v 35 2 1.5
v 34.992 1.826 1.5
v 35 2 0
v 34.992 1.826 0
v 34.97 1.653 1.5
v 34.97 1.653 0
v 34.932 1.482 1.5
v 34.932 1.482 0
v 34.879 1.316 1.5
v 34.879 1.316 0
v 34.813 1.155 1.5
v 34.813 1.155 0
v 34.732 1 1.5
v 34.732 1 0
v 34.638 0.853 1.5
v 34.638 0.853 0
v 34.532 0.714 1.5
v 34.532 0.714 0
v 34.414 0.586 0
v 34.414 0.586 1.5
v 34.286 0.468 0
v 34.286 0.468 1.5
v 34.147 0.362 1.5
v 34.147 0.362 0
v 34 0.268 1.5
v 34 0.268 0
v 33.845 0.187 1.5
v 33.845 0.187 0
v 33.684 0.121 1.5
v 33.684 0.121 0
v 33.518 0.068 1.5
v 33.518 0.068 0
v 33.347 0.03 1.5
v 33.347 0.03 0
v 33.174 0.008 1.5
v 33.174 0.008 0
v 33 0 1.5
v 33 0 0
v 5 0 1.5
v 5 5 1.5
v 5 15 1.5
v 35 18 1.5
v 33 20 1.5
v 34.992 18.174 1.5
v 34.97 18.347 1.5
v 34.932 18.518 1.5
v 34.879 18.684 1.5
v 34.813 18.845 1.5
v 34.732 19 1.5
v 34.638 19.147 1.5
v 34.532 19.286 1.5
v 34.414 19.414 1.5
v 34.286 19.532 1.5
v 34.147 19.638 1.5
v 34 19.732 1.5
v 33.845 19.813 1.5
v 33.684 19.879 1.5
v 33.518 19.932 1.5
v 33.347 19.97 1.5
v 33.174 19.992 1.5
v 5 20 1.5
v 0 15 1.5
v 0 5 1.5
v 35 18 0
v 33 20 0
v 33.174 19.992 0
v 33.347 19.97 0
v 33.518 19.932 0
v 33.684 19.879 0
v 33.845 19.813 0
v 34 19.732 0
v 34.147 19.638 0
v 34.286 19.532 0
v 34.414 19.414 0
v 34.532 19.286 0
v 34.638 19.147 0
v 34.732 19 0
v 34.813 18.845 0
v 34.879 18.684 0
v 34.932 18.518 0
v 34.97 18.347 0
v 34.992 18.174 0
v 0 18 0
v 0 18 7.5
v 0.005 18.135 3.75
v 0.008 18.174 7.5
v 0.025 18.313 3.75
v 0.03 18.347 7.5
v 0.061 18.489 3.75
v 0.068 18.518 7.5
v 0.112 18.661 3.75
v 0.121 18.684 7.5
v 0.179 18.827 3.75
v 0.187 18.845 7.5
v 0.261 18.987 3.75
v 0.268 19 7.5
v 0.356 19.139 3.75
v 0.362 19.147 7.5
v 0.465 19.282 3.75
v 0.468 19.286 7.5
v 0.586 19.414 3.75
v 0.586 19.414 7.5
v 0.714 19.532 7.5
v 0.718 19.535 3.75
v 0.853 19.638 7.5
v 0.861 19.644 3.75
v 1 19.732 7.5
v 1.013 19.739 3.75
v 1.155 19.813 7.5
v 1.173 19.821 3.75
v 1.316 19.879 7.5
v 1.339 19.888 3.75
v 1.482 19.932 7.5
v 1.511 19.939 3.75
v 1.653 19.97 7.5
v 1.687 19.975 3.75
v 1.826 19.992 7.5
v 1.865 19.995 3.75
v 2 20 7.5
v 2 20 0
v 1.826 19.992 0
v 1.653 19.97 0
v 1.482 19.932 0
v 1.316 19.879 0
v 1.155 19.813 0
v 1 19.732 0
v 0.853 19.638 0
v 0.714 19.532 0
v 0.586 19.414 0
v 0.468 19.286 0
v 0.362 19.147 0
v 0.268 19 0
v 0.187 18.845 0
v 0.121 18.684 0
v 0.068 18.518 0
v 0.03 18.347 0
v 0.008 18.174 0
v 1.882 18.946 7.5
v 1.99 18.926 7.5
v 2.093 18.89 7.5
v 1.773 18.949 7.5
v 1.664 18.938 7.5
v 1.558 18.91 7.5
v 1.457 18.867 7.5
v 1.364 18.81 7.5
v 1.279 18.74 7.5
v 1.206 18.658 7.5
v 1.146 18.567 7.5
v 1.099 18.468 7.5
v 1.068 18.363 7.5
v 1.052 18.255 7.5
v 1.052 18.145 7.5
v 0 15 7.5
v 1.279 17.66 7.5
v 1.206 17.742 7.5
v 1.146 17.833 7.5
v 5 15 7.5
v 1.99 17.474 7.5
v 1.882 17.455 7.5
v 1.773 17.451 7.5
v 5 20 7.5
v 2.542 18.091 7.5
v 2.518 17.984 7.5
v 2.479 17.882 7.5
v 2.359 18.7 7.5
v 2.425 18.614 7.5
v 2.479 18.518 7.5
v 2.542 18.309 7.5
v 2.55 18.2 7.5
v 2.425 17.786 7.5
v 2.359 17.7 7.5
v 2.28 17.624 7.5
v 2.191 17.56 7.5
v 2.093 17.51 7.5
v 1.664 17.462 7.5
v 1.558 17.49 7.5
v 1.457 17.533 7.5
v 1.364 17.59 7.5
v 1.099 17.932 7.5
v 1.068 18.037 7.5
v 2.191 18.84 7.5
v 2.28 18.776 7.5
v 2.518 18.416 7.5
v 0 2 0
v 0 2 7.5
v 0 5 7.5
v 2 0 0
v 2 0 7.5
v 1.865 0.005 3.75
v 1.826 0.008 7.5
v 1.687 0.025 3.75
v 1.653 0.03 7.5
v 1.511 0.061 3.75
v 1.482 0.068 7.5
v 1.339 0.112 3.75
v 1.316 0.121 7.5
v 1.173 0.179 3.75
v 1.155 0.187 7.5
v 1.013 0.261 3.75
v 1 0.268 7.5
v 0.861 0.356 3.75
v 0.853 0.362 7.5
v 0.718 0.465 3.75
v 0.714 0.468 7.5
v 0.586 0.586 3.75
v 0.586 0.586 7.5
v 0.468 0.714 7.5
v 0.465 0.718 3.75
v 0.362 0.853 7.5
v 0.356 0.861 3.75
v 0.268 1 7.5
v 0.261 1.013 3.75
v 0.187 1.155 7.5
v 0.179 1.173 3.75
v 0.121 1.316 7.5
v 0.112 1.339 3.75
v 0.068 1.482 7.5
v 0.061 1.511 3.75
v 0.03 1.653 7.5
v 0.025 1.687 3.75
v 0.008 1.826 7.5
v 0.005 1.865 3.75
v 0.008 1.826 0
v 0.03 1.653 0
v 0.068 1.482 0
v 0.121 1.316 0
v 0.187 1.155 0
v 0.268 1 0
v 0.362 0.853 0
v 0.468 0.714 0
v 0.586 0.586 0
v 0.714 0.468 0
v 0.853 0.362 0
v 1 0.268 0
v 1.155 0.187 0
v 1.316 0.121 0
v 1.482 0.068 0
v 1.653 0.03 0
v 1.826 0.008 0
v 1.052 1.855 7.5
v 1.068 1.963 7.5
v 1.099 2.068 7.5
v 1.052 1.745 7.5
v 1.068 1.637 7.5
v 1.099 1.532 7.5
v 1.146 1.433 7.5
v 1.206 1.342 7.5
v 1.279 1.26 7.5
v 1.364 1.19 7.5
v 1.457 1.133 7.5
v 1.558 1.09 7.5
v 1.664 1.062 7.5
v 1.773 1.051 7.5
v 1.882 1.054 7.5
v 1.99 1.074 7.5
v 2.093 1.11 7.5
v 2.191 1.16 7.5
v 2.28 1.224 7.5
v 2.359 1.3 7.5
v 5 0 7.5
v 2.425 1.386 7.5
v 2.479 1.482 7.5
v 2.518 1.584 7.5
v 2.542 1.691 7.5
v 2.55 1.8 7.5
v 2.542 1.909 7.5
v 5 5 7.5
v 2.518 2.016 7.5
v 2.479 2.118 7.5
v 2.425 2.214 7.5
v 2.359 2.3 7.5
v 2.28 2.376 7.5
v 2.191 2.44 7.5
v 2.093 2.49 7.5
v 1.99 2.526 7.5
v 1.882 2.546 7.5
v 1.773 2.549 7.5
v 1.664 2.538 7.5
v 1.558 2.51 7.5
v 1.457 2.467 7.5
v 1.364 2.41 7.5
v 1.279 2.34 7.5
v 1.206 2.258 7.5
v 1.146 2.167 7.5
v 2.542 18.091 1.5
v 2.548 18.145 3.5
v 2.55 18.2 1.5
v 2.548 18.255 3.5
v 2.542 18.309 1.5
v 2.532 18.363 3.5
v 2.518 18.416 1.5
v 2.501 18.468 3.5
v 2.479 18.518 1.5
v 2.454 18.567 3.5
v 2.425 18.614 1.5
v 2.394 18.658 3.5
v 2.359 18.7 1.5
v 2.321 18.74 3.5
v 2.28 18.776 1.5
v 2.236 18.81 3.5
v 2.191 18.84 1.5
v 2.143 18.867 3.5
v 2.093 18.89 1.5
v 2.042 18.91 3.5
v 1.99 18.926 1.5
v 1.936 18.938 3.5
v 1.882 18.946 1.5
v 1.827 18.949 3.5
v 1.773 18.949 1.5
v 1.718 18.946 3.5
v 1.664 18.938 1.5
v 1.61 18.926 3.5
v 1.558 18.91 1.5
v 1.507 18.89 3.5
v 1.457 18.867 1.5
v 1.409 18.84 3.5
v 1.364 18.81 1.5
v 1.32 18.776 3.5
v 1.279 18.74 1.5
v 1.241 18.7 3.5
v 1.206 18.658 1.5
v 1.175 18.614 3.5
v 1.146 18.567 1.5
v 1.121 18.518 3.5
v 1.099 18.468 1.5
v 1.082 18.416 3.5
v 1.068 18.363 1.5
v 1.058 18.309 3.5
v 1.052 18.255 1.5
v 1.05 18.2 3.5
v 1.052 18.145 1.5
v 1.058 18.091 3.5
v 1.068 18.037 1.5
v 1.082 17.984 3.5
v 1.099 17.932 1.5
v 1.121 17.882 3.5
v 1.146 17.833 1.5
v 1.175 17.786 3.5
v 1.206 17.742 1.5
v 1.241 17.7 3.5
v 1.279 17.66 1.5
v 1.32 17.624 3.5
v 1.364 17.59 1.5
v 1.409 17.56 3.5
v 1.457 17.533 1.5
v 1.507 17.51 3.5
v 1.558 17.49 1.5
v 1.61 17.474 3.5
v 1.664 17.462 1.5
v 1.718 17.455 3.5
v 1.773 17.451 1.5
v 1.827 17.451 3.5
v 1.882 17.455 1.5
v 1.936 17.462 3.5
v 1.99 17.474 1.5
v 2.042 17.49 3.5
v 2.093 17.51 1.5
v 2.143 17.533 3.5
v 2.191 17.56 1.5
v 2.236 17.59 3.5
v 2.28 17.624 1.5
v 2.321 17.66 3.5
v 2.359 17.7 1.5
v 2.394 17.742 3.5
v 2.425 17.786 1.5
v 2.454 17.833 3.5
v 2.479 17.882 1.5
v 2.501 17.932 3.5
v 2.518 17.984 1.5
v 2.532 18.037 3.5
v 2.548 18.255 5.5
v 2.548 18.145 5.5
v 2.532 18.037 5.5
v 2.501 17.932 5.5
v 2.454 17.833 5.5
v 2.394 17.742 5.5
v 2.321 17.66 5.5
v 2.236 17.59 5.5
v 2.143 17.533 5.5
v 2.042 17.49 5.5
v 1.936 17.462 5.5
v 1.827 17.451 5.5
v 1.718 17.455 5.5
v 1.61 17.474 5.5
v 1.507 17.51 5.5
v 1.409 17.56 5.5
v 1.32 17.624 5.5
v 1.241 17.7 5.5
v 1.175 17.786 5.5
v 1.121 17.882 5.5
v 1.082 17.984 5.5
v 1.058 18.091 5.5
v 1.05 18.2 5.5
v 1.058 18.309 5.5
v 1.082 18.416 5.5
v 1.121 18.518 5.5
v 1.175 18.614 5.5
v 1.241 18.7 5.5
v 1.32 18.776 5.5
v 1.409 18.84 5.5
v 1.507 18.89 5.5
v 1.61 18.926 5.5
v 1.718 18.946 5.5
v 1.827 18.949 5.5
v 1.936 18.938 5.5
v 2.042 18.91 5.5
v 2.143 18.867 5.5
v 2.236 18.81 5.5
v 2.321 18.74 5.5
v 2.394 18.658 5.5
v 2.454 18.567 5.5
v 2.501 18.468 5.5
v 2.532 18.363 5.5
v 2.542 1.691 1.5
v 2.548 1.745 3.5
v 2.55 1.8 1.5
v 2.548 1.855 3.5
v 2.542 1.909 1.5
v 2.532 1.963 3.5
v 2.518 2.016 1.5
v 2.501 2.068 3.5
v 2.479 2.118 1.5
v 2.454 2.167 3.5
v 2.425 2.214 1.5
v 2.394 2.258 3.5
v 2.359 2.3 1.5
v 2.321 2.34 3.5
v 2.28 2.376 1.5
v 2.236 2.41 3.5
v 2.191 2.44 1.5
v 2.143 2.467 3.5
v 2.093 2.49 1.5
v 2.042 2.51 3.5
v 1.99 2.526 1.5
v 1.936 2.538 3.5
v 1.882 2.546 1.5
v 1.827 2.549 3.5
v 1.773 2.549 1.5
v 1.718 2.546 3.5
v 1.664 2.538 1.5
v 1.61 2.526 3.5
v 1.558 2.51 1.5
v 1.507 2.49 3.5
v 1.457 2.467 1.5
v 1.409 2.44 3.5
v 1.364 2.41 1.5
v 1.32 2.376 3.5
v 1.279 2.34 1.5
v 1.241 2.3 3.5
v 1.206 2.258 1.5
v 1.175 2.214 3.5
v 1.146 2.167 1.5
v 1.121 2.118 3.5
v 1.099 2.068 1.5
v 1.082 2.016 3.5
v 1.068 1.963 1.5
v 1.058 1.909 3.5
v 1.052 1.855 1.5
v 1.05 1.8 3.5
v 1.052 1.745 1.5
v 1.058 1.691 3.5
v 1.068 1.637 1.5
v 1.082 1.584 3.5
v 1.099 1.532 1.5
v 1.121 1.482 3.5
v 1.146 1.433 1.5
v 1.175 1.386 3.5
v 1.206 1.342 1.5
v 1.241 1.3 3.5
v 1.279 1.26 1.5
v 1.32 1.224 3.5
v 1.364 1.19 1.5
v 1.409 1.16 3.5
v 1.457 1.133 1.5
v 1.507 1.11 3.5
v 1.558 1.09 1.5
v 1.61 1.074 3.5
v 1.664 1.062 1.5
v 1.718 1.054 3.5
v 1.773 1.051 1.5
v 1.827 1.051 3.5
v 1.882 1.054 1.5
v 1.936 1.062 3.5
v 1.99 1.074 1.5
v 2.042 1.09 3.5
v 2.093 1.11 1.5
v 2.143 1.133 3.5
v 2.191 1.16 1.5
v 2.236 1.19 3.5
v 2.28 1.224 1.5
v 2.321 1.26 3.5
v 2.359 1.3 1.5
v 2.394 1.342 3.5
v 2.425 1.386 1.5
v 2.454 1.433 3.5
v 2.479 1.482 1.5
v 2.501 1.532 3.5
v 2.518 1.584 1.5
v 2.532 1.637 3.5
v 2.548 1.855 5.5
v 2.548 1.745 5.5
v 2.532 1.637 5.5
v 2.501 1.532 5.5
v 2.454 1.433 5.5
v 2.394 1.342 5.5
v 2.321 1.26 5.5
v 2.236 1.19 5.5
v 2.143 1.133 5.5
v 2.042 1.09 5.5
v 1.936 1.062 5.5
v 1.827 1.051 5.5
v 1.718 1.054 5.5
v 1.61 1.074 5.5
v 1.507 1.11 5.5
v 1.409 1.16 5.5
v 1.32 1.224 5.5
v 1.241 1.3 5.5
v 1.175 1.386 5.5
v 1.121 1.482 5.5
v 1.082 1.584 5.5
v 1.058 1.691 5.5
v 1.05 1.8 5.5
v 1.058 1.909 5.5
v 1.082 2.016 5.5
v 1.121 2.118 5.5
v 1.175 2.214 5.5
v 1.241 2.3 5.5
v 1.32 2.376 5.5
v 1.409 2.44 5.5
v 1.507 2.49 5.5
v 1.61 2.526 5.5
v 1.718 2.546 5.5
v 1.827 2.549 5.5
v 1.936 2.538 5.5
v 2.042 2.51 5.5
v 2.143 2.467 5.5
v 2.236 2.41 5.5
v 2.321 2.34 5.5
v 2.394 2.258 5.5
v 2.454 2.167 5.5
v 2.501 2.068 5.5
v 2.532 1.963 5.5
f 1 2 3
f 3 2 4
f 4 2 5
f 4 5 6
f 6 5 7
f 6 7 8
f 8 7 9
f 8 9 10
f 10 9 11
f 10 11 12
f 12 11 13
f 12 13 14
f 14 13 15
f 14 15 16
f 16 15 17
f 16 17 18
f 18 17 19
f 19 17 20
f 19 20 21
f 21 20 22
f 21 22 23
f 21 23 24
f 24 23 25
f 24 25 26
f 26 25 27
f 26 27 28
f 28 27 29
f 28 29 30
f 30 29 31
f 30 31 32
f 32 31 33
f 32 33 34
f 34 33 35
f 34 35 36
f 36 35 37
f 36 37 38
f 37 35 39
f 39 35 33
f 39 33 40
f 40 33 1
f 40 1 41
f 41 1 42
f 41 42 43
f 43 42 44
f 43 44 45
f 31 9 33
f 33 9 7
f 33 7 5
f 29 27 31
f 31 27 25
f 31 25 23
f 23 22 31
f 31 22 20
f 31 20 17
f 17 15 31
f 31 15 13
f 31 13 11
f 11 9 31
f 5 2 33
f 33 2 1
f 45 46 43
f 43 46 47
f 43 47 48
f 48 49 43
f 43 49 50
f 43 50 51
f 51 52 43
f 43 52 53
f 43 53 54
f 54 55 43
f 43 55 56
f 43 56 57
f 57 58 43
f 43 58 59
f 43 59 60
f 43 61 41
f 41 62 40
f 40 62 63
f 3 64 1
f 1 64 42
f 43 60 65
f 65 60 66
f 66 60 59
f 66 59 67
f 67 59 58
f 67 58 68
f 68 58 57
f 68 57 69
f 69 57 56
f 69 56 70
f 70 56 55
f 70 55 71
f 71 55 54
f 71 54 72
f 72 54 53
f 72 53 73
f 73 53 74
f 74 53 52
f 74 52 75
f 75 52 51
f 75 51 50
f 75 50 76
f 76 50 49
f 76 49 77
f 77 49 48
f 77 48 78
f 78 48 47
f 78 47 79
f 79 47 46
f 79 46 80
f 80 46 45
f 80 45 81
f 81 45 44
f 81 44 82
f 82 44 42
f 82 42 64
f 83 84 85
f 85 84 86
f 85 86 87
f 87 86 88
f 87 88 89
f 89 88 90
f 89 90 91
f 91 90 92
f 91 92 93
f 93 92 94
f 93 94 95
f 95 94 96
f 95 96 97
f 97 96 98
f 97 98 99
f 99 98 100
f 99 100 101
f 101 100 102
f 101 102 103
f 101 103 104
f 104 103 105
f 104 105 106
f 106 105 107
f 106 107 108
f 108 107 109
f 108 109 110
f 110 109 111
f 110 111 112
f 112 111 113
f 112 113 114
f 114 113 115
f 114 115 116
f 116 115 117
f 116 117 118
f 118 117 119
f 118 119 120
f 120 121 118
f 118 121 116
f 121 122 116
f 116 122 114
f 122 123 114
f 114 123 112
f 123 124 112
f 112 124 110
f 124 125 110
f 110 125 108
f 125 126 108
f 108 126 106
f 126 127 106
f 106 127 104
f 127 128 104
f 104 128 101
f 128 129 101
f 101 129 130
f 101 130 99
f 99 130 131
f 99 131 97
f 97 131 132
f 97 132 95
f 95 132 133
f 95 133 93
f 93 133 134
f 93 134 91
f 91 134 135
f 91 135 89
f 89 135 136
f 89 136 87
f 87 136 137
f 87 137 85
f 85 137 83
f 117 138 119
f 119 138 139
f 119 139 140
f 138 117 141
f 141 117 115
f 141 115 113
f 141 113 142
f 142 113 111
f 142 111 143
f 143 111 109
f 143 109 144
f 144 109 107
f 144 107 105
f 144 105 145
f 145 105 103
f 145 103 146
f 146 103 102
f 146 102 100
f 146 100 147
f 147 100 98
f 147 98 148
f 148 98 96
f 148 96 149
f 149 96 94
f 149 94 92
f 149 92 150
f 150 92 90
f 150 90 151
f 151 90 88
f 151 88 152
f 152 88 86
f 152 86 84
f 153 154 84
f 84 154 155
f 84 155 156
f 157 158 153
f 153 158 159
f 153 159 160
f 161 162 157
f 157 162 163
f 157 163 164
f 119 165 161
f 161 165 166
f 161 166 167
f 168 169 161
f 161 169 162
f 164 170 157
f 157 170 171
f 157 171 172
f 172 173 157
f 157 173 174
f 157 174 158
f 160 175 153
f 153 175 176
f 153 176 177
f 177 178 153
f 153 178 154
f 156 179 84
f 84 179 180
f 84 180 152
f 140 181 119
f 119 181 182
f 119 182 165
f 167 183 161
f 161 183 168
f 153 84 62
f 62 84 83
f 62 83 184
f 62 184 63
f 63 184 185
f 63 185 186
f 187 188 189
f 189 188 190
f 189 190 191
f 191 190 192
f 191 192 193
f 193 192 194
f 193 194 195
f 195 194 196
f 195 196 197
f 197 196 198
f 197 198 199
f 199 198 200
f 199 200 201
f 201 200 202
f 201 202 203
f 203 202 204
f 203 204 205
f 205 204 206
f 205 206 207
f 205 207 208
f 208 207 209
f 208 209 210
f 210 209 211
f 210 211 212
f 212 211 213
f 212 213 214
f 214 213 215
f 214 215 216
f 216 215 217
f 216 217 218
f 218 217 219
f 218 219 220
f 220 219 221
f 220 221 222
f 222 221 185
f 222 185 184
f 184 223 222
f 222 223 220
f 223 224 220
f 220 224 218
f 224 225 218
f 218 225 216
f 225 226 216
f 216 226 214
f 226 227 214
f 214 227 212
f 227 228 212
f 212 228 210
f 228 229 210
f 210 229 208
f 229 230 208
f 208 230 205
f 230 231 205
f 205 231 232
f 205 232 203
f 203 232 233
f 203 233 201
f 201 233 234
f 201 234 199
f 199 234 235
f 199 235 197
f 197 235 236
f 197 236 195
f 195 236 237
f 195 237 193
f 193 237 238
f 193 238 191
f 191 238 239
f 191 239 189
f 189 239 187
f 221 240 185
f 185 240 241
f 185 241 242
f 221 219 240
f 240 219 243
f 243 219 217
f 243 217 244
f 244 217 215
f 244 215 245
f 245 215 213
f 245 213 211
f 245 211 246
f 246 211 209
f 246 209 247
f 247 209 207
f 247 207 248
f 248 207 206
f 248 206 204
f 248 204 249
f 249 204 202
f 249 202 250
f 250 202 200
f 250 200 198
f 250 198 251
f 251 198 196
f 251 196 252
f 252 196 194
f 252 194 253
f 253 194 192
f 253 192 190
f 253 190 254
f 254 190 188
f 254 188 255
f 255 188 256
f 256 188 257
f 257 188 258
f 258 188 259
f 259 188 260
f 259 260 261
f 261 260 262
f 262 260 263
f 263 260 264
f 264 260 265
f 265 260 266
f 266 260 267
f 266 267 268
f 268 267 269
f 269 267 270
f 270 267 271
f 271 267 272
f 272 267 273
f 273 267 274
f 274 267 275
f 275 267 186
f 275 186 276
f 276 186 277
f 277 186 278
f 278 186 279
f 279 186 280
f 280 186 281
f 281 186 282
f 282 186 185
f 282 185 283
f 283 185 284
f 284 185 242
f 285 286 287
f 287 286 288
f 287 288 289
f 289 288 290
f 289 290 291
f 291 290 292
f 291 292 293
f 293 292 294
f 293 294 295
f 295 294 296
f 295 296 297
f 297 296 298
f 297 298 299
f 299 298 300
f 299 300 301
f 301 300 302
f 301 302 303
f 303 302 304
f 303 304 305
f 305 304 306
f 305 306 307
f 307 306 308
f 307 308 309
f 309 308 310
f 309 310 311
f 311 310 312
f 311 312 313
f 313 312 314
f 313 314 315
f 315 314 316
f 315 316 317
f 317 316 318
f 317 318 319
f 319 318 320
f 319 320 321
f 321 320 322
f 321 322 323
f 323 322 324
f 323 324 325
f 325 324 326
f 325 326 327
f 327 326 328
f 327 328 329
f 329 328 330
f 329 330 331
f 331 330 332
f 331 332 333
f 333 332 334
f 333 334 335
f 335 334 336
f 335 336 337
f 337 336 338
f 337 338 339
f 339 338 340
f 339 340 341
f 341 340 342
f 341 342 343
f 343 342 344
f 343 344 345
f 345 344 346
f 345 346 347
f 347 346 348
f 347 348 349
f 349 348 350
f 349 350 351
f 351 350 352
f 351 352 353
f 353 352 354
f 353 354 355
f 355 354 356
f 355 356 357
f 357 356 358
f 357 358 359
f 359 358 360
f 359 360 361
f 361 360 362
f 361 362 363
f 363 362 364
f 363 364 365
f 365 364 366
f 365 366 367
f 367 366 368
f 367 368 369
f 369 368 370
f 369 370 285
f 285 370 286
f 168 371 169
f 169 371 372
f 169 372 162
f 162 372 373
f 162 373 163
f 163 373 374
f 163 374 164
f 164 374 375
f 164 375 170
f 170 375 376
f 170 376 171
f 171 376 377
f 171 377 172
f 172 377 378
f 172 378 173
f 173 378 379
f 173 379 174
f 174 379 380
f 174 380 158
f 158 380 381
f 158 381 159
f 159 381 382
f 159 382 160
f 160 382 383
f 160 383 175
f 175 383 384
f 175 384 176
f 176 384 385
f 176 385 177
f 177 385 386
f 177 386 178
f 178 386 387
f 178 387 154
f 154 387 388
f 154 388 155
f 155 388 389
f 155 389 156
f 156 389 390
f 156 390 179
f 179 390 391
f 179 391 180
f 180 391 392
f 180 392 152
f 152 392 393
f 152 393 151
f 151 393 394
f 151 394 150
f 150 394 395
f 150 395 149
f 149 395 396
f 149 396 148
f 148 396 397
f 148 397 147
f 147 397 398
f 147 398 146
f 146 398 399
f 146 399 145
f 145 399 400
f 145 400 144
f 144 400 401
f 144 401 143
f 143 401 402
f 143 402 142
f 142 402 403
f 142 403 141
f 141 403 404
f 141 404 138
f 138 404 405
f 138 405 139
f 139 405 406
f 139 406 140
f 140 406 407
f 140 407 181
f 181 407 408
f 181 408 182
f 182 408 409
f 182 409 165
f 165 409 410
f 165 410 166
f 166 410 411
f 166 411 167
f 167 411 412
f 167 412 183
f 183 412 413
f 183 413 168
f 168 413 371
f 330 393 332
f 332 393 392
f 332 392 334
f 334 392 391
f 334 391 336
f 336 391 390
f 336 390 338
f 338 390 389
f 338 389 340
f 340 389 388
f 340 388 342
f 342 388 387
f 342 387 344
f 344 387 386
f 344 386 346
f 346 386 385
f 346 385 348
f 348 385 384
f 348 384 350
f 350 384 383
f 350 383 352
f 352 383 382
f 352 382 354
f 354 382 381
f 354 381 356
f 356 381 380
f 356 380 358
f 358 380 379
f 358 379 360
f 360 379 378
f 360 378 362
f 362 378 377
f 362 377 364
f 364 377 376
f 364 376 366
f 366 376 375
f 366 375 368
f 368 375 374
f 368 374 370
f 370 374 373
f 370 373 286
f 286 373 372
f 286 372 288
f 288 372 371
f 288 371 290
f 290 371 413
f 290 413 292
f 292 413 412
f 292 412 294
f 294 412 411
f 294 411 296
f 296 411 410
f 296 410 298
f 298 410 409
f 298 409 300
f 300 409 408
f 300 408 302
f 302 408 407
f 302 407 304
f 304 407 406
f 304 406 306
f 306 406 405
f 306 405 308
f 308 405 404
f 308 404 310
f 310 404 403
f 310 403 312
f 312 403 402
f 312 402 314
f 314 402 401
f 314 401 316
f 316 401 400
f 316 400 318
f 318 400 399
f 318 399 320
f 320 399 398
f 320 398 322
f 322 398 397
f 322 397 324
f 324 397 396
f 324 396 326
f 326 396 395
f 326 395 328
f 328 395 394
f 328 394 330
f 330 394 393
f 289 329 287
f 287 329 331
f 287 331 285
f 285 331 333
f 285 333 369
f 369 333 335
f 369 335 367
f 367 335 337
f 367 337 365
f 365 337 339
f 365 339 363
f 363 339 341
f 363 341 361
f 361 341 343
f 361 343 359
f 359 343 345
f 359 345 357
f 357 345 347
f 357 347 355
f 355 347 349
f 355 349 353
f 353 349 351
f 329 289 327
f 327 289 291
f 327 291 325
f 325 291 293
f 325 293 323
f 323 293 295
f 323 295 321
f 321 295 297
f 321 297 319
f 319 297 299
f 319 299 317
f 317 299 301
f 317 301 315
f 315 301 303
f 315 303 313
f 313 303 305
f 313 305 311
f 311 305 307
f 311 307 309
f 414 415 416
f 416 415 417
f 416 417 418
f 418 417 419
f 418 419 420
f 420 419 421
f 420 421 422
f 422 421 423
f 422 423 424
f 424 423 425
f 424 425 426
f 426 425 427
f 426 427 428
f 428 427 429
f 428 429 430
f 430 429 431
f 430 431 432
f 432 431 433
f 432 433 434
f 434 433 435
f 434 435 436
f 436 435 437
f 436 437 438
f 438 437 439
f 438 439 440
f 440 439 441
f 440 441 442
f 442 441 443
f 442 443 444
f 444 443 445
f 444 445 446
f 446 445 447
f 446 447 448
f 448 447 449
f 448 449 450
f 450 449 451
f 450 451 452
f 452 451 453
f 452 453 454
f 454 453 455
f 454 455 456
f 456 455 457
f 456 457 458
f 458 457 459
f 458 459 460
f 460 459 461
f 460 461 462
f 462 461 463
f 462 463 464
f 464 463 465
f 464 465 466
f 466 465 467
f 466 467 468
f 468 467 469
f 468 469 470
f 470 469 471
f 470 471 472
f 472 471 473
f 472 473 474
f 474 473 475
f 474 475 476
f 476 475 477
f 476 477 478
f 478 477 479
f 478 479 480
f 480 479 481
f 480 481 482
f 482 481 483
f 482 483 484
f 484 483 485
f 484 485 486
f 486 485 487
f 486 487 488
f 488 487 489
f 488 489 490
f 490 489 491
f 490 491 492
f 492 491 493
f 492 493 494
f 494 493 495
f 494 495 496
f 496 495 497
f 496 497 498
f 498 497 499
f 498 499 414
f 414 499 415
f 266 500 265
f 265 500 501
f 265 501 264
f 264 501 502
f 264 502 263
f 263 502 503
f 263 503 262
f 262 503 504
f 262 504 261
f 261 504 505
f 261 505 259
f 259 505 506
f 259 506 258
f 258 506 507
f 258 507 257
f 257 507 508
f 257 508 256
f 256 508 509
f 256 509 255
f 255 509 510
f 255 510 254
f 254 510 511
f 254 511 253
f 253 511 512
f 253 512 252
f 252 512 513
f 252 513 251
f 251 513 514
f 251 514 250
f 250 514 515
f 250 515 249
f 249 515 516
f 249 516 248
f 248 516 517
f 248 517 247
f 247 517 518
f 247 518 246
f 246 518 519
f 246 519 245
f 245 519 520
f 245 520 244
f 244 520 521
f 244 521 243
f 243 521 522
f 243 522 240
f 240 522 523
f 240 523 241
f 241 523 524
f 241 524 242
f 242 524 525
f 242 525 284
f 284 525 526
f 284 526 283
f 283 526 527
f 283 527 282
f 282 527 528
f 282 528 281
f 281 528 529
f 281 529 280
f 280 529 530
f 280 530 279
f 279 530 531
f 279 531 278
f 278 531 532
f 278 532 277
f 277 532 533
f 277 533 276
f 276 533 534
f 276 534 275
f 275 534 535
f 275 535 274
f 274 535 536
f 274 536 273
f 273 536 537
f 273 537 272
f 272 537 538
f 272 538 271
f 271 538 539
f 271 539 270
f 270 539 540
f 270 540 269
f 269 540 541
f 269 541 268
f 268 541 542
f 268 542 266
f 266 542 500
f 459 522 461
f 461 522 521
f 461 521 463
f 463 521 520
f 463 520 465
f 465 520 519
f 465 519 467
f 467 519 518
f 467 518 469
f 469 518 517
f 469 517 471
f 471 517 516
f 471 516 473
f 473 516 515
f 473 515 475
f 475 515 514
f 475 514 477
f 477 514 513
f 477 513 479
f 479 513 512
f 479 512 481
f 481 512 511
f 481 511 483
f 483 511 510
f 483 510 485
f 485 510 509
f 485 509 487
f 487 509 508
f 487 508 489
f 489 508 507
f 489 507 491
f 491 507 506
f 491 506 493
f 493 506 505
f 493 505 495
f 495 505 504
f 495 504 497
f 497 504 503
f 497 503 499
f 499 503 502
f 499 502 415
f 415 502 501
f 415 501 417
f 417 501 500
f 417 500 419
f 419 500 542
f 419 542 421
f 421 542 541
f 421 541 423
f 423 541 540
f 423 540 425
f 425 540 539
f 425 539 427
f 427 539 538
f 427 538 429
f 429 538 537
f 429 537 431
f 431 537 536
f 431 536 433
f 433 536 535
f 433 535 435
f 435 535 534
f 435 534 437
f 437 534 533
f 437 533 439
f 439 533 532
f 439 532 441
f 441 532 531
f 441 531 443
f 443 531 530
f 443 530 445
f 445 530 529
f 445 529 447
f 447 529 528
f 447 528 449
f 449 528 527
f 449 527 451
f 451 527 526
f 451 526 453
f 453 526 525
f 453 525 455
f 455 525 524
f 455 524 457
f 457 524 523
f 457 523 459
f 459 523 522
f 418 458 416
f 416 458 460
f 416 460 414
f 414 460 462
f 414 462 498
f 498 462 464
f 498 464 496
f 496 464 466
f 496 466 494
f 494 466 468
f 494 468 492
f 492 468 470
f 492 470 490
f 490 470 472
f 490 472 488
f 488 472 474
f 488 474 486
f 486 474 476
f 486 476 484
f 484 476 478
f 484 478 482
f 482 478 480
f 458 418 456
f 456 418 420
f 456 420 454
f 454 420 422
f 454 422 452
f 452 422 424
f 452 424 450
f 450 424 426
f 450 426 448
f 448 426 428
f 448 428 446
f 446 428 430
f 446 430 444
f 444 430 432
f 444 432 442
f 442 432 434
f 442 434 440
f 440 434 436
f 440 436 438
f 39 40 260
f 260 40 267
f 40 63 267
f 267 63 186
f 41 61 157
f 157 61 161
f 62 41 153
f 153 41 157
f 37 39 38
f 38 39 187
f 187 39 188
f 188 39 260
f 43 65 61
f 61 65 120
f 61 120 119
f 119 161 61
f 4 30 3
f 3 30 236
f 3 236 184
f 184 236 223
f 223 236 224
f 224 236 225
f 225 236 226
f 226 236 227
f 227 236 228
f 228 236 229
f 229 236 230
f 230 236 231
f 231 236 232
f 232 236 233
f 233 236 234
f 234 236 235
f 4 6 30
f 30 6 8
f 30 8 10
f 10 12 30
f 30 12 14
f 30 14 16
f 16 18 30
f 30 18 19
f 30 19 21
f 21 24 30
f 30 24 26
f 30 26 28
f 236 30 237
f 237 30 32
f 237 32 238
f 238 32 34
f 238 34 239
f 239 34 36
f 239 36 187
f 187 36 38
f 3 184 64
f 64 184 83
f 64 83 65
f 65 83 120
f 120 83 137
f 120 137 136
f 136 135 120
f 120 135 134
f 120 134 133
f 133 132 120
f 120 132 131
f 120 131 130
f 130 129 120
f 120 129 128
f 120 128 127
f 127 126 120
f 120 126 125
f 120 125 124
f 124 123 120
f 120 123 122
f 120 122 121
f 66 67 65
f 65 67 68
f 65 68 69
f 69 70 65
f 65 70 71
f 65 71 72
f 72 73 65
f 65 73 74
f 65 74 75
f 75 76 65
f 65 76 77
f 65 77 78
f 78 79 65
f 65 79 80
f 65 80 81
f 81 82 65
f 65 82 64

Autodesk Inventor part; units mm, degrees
ref_plane "YZ Plane" through (0, 0, 0) normal (1, 0, 0) x (0, 1, 0)
ref_plane "XZ Plane" through (0, 0, 0) normal (0, 1, 0) x (-1, 0, 0)
ref_plane "XY Plane" through (0, 0, 0) normal (0, 0, 1) x (1, 0, 0)
sketch "Эскиз1" plane through (0, 0, 0) normal (0, 0, 1) x (1, 0, 0)
  line L0 (0, 0) -> (35, 0)
  line L1 (35, 0) -> (35, 20)
  line L2 (35, 20) -> (0, 20)
  line L3 (0, 20) -> (0, 0)
  dimension "d0" = 35
  dimension "d1" = 20
extrude "Выдавливание1" add sketch "Эскиз1" along normal blind 1.5
sketch "Эскиз2" plane through (0, 0, 1.5) normal (0, 0, 1) x (1, 0, 0)
  line L0 (0, 20) -> (0, 0) projected
  line L1 (0, 0) -> (5, 0)
  line L2 (5, 0) -> (5, 5)
  line L3 (5, 5) -> (0, 5)
  line L4 (0, 5) -> (0, 0)
  line L5 (35, 20) -> (0, 20) projected
  line L6 (0, 20) -> (5, 20)
  line L7 (5, 20) -> (5, 15)
  line L8 (5, 15) -> (0, 15)
  line L9 (0, 15) -> (0, 20)
  dimension "d4" = 5
  dimension "d5" = 5
  dimension "d6" = 5
  dimension "d7" = 5
extrude "Выдавливание2" add sketch "Эскиз2" along normal blind 6
sketch "Эскиз3" plane through (0, 0, 7.5) normal (0, 0, 1) x (1, 0, 0)
  circle A0 centre (1.8, 1.8) radius 0.75
  circle A1 centre (1.8, 18.2) radius 0.75
  line L0 (0, 0) -> (5, 0) projected
  line L1 (0, 5) -> (0, 0) projected
  line L2 (0, 20) -> (0, 15) projected
  line L3 (5, 20) -> (0, 20) projected
  dimension "d10" = 1.5
  dimension "d11" = 1.5
  dimension "d12" = 1.8
  dimension "d13" = 1.8
  dimension "d14" = 1.8
  dimension "d15" = 1.8
extrude "Выдавливание3" cut sketch "Эскиз3" against normal blind 6
fillet "Сопряжение1" radius 2 4 edges at (0, 0, 3.75) (0, 20, 3.75) (35, 20, 0.75) (35, 0, 0.75)
properties part number "RDC1-0014_Holder"
